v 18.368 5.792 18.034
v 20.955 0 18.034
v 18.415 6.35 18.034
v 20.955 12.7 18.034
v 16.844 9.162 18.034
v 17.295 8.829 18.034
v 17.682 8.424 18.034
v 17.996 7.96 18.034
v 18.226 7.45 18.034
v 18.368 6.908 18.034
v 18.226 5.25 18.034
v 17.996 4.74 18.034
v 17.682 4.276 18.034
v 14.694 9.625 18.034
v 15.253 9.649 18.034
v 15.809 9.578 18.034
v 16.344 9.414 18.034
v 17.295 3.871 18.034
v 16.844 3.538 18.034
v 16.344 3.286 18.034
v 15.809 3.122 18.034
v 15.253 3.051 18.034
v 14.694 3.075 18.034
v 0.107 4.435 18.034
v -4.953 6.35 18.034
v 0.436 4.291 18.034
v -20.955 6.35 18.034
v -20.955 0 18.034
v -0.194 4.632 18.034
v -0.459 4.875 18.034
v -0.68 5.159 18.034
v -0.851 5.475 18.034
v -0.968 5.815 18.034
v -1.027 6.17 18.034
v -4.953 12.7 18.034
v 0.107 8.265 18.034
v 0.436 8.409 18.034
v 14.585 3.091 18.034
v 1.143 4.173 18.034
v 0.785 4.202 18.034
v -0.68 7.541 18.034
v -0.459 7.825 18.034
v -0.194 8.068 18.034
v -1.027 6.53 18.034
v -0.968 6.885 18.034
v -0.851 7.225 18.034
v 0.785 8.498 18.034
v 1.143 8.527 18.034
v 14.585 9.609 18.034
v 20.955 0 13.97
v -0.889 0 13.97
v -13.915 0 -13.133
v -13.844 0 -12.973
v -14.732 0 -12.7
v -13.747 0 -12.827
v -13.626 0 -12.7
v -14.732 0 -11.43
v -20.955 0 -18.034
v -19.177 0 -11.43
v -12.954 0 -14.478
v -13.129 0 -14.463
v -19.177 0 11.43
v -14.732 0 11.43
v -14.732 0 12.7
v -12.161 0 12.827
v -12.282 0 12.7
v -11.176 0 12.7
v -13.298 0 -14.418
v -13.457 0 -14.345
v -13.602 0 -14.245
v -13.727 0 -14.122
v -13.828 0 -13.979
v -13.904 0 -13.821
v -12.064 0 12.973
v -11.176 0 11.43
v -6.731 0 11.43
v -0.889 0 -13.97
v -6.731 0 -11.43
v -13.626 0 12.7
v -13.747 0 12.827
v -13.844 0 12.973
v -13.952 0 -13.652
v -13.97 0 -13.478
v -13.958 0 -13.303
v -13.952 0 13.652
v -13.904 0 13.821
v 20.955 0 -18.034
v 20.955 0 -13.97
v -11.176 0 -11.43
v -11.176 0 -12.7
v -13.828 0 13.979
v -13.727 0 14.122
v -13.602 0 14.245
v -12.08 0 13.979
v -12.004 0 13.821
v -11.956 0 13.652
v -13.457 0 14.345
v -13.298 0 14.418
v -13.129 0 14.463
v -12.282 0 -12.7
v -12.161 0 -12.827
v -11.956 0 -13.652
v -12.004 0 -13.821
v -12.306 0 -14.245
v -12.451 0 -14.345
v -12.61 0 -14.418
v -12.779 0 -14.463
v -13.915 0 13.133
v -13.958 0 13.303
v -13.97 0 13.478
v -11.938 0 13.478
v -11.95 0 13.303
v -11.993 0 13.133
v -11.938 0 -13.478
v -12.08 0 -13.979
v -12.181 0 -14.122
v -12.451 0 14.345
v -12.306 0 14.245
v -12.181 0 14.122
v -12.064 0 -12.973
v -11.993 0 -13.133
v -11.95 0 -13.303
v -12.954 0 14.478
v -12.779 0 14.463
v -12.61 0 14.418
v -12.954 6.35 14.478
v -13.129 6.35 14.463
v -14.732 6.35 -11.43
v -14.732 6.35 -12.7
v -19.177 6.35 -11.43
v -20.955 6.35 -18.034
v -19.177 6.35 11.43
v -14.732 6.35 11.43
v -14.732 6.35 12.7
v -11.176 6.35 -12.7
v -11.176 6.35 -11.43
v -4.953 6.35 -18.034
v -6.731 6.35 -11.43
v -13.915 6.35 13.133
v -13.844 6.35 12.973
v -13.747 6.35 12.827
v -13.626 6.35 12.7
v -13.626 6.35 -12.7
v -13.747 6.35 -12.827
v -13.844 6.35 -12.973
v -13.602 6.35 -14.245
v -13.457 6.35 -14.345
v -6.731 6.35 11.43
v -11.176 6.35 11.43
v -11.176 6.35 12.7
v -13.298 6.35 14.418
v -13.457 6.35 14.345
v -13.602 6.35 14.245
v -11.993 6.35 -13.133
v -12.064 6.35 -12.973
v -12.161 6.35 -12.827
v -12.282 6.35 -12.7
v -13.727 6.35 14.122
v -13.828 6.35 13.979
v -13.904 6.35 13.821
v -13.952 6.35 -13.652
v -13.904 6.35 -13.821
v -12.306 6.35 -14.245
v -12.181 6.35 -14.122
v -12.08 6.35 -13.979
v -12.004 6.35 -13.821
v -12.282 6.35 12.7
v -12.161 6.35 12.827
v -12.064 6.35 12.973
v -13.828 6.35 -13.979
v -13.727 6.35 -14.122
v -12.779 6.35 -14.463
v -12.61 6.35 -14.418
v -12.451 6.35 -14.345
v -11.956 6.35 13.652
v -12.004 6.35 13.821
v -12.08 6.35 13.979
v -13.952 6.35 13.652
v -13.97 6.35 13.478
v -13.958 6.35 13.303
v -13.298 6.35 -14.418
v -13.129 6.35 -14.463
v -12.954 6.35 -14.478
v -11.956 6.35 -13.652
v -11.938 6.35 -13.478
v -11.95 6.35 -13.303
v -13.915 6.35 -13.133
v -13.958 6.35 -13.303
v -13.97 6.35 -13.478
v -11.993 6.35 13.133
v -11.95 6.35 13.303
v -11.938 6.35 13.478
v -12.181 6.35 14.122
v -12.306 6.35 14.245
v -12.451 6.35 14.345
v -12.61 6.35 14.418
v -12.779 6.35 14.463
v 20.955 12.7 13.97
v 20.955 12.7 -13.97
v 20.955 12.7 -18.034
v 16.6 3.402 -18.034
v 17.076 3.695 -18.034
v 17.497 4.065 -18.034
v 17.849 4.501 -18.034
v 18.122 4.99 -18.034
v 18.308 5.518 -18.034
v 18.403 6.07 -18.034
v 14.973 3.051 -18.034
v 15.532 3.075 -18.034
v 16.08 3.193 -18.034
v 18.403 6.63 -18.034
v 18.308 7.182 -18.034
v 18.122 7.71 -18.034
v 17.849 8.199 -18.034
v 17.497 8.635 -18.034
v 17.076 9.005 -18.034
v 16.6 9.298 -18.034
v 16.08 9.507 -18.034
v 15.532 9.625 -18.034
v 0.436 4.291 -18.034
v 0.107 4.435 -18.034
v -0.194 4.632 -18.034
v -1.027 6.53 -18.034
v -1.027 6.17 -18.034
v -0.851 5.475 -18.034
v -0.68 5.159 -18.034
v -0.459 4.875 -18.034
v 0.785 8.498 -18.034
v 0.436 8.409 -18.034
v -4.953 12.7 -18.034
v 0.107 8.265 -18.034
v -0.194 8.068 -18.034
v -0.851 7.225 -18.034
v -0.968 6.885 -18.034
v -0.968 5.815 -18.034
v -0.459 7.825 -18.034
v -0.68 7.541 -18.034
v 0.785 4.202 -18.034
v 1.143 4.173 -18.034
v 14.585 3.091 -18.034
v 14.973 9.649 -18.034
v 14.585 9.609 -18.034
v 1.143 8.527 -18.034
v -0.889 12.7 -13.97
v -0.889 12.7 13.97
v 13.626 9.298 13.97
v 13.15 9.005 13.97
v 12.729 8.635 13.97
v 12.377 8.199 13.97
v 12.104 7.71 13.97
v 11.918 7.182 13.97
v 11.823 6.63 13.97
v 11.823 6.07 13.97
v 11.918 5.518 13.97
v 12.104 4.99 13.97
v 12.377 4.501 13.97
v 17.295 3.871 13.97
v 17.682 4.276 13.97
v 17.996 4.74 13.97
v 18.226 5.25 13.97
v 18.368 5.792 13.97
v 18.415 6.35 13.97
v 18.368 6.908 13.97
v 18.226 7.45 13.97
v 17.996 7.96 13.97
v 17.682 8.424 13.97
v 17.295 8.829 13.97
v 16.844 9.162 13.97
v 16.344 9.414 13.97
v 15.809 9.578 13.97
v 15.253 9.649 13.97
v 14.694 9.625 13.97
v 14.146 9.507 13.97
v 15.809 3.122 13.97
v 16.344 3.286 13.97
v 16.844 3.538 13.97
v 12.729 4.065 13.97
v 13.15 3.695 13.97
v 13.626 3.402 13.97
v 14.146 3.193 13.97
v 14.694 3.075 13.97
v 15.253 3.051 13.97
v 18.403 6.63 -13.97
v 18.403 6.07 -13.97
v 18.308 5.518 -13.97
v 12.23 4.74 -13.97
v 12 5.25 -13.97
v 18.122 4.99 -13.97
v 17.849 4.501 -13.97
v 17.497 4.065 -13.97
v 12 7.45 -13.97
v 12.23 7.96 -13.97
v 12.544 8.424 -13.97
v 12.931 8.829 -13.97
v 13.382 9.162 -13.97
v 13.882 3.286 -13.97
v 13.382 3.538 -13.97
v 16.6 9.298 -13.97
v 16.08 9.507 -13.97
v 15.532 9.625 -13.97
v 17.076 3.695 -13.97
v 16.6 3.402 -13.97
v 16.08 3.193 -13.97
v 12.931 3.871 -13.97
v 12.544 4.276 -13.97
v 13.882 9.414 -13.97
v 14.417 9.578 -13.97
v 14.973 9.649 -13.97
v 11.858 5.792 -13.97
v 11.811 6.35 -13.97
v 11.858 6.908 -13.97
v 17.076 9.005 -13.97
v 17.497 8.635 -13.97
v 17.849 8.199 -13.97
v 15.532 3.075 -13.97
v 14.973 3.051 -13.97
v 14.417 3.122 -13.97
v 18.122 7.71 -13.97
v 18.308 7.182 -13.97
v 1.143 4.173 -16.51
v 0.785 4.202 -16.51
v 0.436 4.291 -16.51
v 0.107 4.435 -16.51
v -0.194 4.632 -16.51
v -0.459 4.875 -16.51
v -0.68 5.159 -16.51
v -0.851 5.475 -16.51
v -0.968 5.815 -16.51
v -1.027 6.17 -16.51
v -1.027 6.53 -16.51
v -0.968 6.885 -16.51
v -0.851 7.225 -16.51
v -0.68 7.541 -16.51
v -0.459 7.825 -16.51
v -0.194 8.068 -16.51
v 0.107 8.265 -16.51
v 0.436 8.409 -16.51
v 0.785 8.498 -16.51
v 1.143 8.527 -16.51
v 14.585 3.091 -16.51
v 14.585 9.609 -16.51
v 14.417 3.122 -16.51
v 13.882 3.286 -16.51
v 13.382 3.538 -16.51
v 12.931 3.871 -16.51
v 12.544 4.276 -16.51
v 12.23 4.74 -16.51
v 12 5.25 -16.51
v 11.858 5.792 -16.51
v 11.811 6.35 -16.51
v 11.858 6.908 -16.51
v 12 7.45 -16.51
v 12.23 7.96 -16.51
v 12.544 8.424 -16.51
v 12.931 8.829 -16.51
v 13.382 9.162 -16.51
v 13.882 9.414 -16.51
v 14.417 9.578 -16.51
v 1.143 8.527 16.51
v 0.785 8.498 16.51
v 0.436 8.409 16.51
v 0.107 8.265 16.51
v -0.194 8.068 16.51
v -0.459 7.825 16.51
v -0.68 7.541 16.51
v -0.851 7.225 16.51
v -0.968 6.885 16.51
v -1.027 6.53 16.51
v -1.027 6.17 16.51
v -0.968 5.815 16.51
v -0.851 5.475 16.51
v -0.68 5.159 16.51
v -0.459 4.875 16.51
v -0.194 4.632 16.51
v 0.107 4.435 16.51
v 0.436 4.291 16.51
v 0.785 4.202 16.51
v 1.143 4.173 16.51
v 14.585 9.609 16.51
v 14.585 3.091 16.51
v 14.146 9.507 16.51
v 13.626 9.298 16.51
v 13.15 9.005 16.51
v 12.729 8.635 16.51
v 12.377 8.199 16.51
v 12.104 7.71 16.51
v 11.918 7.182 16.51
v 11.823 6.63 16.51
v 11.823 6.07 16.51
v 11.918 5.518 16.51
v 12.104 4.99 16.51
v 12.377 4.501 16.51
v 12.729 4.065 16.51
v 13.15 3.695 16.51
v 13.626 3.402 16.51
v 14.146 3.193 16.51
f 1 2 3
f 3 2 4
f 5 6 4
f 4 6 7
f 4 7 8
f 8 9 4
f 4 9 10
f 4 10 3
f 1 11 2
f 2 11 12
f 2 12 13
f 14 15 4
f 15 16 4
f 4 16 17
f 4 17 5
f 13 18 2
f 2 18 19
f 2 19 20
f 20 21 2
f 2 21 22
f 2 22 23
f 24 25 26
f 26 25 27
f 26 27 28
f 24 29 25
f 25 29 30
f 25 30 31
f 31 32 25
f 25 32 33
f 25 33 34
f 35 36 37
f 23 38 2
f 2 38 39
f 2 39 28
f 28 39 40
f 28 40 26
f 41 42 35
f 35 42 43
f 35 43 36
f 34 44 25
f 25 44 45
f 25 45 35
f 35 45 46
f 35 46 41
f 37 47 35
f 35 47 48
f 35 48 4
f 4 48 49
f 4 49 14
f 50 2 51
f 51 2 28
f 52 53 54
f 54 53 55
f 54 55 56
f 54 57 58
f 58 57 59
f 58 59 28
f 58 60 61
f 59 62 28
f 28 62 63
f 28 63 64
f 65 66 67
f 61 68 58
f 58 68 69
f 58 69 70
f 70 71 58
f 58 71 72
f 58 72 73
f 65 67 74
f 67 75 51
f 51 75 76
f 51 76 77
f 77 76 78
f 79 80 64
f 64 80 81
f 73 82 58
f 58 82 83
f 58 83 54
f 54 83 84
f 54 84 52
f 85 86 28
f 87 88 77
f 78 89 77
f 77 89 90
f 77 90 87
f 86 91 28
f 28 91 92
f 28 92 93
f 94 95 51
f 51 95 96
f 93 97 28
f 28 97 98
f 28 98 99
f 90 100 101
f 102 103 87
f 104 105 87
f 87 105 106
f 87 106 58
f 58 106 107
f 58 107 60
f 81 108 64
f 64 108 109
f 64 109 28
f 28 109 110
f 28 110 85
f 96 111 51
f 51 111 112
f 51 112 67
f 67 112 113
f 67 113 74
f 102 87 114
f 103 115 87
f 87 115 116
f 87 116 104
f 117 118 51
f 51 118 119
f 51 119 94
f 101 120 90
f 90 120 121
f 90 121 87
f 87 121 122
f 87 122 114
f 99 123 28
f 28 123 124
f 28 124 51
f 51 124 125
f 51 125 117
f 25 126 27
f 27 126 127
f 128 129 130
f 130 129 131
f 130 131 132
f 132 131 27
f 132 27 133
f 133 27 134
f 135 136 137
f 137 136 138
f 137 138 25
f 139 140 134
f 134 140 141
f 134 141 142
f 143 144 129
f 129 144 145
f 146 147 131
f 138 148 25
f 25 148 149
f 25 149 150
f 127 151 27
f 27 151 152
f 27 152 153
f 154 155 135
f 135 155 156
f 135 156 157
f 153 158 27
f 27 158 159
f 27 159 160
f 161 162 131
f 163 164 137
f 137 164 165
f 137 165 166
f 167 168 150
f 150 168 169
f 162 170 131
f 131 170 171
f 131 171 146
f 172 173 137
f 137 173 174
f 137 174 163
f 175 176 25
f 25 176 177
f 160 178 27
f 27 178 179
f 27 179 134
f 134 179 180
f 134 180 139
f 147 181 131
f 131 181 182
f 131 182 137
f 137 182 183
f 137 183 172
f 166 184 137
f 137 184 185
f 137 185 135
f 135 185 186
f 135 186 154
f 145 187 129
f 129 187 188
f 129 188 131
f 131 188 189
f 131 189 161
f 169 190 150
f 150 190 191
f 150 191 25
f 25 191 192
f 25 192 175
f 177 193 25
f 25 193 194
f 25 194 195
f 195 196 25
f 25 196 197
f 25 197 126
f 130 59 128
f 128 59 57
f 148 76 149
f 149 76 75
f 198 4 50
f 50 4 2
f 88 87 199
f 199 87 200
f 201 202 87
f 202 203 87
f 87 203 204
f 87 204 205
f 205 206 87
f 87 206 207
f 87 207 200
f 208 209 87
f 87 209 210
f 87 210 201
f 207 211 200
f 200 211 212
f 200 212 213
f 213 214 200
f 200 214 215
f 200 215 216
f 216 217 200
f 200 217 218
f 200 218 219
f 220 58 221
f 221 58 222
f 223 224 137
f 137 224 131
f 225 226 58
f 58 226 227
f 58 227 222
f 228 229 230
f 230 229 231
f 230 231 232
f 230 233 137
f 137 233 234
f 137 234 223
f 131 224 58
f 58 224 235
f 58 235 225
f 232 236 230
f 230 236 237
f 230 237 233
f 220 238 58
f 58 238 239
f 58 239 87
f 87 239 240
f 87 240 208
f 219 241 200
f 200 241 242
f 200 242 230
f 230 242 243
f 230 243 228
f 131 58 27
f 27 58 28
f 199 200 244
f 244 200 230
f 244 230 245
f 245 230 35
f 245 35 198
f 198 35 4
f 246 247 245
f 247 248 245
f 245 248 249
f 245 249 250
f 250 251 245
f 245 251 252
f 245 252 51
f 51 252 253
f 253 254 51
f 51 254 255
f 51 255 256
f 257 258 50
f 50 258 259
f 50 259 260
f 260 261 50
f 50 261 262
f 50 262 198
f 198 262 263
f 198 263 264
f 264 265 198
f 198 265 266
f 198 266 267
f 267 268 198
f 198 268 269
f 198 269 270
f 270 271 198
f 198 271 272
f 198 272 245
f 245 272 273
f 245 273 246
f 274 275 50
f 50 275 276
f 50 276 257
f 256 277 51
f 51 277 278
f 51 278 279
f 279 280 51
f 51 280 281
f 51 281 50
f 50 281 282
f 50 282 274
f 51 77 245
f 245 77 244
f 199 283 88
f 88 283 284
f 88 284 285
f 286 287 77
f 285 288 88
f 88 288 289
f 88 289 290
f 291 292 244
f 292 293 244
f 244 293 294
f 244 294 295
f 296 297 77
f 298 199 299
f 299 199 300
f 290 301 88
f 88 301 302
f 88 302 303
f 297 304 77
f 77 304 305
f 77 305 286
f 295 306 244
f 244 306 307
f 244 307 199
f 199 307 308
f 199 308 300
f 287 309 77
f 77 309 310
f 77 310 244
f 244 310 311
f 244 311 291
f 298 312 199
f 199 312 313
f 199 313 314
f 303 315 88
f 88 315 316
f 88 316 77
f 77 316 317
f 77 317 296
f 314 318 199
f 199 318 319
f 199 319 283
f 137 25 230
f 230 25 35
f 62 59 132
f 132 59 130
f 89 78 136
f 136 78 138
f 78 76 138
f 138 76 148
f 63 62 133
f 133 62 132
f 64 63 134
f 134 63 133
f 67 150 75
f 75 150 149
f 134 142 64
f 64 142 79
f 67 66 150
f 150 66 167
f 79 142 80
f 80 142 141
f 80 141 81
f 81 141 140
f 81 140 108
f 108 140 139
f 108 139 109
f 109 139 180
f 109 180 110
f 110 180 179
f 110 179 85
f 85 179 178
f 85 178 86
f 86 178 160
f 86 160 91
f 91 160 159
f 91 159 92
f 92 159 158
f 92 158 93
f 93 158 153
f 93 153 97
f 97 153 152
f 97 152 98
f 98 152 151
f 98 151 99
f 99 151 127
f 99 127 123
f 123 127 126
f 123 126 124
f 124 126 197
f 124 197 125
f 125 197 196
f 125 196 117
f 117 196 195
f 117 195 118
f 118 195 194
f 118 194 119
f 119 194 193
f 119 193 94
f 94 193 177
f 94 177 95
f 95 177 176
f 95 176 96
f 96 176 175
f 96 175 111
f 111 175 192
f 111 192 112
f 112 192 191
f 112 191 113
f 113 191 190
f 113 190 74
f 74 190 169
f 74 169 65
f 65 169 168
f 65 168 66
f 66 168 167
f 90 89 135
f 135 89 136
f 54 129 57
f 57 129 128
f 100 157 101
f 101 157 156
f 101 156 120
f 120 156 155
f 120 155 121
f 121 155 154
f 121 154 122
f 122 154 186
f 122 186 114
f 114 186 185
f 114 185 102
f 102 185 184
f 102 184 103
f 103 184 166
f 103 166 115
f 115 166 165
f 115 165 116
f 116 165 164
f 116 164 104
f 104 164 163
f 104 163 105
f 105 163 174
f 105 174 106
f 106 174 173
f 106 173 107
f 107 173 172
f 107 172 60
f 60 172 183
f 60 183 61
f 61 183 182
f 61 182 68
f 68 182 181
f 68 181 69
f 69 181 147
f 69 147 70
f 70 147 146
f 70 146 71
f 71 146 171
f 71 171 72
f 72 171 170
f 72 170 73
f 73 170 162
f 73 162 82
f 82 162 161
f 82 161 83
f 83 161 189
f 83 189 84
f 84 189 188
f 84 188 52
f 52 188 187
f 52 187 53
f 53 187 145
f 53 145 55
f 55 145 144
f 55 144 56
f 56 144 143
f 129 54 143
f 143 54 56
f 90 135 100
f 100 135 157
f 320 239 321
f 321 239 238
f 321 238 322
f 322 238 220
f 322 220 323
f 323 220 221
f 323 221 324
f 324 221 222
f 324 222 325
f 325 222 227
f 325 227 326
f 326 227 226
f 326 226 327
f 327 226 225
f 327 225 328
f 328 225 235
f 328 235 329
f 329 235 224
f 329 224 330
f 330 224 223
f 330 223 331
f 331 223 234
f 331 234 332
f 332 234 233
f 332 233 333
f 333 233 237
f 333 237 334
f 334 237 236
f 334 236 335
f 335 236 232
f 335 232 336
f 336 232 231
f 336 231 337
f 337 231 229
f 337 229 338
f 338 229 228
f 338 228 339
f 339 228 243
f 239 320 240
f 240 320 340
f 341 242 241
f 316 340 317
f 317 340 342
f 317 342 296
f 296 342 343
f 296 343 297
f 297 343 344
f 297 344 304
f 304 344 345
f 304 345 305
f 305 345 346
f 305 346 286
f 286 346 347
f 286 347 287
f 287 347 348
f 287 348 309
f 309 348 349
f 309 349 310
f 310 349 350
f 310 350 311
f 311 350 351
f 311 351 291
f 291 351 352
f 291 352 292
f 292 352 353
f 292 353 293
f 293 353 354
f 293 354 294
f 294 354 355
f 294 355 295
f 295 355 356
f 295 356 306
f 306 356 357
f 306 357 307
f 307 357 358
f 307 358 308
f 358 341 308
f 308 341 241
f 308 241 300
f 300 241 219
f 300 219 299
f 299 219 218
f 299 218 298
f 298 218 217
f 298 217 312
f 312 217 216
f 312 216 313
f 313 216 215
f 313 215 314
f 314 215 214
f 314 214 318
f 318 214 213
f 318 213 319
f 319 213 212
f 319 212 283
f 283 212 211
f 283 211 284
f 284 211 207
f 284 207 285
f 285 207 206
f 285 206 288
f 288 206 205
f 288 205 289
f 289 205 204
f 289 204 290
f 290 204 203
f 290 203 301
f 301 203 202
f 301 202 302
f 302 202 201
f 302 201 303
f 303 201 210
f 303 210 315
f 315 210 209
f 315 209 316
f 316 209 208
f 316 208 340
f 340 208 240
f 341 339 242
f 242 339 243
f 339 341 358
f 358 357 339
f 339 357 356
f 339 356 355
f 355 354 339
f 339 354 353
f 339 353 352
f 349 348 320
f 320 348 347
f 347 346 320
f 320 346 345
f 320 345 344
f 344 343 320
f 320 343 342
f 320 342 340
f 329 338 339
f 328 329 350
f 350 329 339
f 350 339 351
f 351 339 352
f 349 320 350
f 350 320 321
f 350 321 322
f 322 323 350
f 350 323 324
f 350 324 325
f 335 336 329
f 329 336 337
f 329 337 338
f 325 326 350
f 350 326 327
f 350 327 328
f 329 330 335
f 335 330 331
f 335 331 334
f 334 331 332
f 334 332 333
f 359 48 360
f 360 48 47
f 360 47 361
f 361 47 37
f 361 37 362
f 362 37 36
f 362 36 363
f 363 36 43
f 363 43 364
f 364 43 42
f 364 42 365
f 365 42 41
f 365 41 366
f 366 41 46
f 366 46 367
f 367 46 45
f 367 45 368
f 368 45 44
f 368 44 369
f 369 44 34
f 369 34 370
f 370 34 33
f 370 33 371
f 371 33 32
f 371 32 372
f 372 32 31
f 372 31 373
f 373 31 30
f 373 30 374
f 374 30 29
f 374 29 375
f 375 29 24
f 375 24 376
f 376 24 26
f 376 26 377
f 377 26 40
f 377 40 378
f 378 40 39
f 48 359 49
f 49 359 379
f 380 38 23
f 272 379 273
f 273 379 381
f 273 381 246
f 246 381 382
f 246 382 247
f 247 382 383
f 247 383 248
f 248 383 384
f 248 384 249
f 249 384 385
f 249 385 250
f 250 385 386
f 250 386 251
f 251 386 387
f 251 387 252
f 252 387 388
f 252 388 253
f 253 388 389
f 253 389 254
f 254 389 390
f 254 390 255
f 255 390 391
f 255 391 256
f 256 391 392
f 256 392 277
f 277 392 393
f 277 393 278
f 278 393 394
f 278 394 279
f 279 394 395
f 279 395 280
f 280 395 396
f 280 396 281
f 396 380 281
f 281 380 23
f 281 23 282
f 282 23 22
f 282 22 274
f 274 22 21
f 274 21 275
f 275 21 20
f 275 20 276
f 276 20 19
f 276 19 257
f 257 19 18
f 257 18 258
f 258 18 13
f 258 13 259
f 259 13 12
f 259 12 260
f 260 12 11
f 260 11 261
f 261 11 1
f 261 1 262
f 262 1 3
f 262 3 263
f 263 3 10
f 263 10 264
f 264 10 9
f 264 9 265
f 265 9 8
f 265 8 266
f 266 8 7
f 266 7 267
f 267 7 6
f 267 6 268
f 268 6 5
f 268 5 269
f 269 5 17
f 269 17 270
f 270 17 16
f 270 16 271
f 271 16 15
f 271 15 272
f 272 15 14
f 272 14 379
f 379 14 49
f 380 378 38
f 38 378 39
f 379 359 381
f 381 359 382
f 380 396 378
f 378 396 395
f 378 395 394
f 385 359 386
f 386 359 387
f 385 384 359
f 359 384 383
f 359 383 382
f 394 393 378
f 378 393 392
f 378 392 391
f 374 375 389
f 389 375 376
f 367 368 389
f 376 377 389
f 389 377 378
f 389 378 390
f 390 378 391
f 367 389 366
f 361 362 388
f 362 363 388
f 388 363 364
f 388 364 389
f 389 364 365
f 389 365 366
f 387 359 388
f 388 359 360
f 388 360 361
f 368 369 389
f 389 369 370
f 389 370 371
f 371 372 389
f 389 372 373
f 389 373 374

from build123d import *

# Parameters (mm, degrees)
SKETCH1_W           = 41.91
SKETCH1_H           = 36.068
BOSS_EXTRUDE1_DEPTH = 12.7
SKETCH3_W           = 21.844
SKETCH3_H           = 27.94
CUT_EXTRUDE1_DEPTH  = 13.7
SKETCH4_W           = 16.002
SKETCH4_H           = 36.068
CUT_EXTRUDE2_DEPTH  = 6.35
SKETCH5_W           = 12.446
SKETCH5_H           = 22.86
CUT_EXTRUDE3_DEPTH  = 7.35
SKETCH6_R           = 1.016
SKETCH6_W           = 3.556
SKETCH6_H           = 2.54
CUT_EXTRUDE11_DEPTH = 6.35
CUT_EXTRUDE13_DEPTH = 1.524
SKETCH9_R           = 3.302
CUT_EXTRUDE14_DEPTH = 37.068


with BuildPart() as part:
    # Sketch1 → Boss-Extrude1 (new body)
    with BuildSketch(Plane(origin=(0, 0, 0), x_dir=(1, 0, 0), z_dir=(0, 1, 0))):
        Rectangle(SKETCH1_W, SKETCH1_H)
    extrude(amount=BOSS_EXTRUDE1_DEPTH)

    # Sketch3 → Cut-Extrude1 (cut, through all)
    with BuildSketch(Plane(origin=(0, 12.7, 0), x_dir=(1, 0, 0), z_dir=(0, 1, 0))):
        with Locations((10.033, 0)):
            Rectangle(SKETCH3_W, SKETCH3_H)
    extrude(amount=-CUT_EXTRUDE1_DEPTH, mode=Mode.SUBTRACT)

    # Sketch4 → Cut-Extrude2 (cut)
    with BuildSketch(Plane(origin=(0, 12.7, 0), x_dir=(1, 0, 0), z_dir=(0, 1, 0))):
        with Locations((-12.954, 0)):
            Rectangle(SKETCH4_W, SKETCH4_H)
    extrude(amount=-CUT_EXTRUDE2_DEPTH, mode=Mode.SUBTRACT)

    # Sketch5 → Cut-Extrude3 (cut, through all)
    with BuildSketch(Plane(origin=(0, 6.35, 0), x_dir=(1, 0, 0), z_dir=(0, 1, 0))):
        with Locations((-12.954, 0)):
            Rectangle(SKETCH5_W, SKETCH5_H)
    extrude(amount=-CUT_EXTRUDE3_DEPTH, mode=Mode.SUBTRACT)

    # Sketch6 → Cut-Extrude11 (cut)
    with BuildSketch(Plane(origin=(0, 6.35, 0), x_dir=(1, 0, 0), z_dir=(0, 1, 0))):
        with Locations((-12.954, -13.462)):
            Circle(SKETCH6_R)
        with Locations((-12.954, 13.462)):
            Circle(SKETCH6_R)
        with Locations((-12.954, -11.43)):
            Rectangle(SKETCH6_W, SKETCH6_H)
        with Locations((-12.954, 11.43)):
            Rectangle(SKETCH6_W, SKETCH6_H)
    extrude(amount=-CUT_EXTRUDE11_DEPTH, mode=Mode.SUBTRACT)

    # Sketch8 → Cut-Extrude13 (cut)
    with BuildSketch(Plane(origin=(0, 0, -18.034), x_dir=(-1, 0, 0), z_dir=(0, 0, -1))):
        with BuildLine():
            ThreePointArc((-1.143, 4.172598162), (1.034401838, 6.35), (-1.143, 8.527401838))
            Line((-1.143, 8.527401838), (-15.113, 9.652))
            ThreePointArc((-15.113, 9.652), (-18.415, 6.35), (-15.113, 3.048))
            Line((-15.113, 3.048), (-1.143, 4.172598162))
        make_face()
    cut_extrude13 = extrude(amount=-CUT_EXTRUDE13_DEPTH, mode=Mode.SUBTRACT)

    # Mirror1: Cut-Extrude13 across plane
    add(cut_extrude13.mirror(Plane.XY), mode=Mode.SUBTRACT)

    # Sketch9 → Cut-Extrude14 (cut, through all)
    with BuildSketch(Plane(origin=(0, 0, -18.034), x_dir=(-1, 0, 0), z_dir=(0, 0, -1))):
        with Locations((-15.113, 6.35)):
            Circle(SKETCH9_R)
    extrude(amount=-CUT_EXTRUDE14_DEPTH, mode=Mode.SUBTRACT)


solid = part.part
